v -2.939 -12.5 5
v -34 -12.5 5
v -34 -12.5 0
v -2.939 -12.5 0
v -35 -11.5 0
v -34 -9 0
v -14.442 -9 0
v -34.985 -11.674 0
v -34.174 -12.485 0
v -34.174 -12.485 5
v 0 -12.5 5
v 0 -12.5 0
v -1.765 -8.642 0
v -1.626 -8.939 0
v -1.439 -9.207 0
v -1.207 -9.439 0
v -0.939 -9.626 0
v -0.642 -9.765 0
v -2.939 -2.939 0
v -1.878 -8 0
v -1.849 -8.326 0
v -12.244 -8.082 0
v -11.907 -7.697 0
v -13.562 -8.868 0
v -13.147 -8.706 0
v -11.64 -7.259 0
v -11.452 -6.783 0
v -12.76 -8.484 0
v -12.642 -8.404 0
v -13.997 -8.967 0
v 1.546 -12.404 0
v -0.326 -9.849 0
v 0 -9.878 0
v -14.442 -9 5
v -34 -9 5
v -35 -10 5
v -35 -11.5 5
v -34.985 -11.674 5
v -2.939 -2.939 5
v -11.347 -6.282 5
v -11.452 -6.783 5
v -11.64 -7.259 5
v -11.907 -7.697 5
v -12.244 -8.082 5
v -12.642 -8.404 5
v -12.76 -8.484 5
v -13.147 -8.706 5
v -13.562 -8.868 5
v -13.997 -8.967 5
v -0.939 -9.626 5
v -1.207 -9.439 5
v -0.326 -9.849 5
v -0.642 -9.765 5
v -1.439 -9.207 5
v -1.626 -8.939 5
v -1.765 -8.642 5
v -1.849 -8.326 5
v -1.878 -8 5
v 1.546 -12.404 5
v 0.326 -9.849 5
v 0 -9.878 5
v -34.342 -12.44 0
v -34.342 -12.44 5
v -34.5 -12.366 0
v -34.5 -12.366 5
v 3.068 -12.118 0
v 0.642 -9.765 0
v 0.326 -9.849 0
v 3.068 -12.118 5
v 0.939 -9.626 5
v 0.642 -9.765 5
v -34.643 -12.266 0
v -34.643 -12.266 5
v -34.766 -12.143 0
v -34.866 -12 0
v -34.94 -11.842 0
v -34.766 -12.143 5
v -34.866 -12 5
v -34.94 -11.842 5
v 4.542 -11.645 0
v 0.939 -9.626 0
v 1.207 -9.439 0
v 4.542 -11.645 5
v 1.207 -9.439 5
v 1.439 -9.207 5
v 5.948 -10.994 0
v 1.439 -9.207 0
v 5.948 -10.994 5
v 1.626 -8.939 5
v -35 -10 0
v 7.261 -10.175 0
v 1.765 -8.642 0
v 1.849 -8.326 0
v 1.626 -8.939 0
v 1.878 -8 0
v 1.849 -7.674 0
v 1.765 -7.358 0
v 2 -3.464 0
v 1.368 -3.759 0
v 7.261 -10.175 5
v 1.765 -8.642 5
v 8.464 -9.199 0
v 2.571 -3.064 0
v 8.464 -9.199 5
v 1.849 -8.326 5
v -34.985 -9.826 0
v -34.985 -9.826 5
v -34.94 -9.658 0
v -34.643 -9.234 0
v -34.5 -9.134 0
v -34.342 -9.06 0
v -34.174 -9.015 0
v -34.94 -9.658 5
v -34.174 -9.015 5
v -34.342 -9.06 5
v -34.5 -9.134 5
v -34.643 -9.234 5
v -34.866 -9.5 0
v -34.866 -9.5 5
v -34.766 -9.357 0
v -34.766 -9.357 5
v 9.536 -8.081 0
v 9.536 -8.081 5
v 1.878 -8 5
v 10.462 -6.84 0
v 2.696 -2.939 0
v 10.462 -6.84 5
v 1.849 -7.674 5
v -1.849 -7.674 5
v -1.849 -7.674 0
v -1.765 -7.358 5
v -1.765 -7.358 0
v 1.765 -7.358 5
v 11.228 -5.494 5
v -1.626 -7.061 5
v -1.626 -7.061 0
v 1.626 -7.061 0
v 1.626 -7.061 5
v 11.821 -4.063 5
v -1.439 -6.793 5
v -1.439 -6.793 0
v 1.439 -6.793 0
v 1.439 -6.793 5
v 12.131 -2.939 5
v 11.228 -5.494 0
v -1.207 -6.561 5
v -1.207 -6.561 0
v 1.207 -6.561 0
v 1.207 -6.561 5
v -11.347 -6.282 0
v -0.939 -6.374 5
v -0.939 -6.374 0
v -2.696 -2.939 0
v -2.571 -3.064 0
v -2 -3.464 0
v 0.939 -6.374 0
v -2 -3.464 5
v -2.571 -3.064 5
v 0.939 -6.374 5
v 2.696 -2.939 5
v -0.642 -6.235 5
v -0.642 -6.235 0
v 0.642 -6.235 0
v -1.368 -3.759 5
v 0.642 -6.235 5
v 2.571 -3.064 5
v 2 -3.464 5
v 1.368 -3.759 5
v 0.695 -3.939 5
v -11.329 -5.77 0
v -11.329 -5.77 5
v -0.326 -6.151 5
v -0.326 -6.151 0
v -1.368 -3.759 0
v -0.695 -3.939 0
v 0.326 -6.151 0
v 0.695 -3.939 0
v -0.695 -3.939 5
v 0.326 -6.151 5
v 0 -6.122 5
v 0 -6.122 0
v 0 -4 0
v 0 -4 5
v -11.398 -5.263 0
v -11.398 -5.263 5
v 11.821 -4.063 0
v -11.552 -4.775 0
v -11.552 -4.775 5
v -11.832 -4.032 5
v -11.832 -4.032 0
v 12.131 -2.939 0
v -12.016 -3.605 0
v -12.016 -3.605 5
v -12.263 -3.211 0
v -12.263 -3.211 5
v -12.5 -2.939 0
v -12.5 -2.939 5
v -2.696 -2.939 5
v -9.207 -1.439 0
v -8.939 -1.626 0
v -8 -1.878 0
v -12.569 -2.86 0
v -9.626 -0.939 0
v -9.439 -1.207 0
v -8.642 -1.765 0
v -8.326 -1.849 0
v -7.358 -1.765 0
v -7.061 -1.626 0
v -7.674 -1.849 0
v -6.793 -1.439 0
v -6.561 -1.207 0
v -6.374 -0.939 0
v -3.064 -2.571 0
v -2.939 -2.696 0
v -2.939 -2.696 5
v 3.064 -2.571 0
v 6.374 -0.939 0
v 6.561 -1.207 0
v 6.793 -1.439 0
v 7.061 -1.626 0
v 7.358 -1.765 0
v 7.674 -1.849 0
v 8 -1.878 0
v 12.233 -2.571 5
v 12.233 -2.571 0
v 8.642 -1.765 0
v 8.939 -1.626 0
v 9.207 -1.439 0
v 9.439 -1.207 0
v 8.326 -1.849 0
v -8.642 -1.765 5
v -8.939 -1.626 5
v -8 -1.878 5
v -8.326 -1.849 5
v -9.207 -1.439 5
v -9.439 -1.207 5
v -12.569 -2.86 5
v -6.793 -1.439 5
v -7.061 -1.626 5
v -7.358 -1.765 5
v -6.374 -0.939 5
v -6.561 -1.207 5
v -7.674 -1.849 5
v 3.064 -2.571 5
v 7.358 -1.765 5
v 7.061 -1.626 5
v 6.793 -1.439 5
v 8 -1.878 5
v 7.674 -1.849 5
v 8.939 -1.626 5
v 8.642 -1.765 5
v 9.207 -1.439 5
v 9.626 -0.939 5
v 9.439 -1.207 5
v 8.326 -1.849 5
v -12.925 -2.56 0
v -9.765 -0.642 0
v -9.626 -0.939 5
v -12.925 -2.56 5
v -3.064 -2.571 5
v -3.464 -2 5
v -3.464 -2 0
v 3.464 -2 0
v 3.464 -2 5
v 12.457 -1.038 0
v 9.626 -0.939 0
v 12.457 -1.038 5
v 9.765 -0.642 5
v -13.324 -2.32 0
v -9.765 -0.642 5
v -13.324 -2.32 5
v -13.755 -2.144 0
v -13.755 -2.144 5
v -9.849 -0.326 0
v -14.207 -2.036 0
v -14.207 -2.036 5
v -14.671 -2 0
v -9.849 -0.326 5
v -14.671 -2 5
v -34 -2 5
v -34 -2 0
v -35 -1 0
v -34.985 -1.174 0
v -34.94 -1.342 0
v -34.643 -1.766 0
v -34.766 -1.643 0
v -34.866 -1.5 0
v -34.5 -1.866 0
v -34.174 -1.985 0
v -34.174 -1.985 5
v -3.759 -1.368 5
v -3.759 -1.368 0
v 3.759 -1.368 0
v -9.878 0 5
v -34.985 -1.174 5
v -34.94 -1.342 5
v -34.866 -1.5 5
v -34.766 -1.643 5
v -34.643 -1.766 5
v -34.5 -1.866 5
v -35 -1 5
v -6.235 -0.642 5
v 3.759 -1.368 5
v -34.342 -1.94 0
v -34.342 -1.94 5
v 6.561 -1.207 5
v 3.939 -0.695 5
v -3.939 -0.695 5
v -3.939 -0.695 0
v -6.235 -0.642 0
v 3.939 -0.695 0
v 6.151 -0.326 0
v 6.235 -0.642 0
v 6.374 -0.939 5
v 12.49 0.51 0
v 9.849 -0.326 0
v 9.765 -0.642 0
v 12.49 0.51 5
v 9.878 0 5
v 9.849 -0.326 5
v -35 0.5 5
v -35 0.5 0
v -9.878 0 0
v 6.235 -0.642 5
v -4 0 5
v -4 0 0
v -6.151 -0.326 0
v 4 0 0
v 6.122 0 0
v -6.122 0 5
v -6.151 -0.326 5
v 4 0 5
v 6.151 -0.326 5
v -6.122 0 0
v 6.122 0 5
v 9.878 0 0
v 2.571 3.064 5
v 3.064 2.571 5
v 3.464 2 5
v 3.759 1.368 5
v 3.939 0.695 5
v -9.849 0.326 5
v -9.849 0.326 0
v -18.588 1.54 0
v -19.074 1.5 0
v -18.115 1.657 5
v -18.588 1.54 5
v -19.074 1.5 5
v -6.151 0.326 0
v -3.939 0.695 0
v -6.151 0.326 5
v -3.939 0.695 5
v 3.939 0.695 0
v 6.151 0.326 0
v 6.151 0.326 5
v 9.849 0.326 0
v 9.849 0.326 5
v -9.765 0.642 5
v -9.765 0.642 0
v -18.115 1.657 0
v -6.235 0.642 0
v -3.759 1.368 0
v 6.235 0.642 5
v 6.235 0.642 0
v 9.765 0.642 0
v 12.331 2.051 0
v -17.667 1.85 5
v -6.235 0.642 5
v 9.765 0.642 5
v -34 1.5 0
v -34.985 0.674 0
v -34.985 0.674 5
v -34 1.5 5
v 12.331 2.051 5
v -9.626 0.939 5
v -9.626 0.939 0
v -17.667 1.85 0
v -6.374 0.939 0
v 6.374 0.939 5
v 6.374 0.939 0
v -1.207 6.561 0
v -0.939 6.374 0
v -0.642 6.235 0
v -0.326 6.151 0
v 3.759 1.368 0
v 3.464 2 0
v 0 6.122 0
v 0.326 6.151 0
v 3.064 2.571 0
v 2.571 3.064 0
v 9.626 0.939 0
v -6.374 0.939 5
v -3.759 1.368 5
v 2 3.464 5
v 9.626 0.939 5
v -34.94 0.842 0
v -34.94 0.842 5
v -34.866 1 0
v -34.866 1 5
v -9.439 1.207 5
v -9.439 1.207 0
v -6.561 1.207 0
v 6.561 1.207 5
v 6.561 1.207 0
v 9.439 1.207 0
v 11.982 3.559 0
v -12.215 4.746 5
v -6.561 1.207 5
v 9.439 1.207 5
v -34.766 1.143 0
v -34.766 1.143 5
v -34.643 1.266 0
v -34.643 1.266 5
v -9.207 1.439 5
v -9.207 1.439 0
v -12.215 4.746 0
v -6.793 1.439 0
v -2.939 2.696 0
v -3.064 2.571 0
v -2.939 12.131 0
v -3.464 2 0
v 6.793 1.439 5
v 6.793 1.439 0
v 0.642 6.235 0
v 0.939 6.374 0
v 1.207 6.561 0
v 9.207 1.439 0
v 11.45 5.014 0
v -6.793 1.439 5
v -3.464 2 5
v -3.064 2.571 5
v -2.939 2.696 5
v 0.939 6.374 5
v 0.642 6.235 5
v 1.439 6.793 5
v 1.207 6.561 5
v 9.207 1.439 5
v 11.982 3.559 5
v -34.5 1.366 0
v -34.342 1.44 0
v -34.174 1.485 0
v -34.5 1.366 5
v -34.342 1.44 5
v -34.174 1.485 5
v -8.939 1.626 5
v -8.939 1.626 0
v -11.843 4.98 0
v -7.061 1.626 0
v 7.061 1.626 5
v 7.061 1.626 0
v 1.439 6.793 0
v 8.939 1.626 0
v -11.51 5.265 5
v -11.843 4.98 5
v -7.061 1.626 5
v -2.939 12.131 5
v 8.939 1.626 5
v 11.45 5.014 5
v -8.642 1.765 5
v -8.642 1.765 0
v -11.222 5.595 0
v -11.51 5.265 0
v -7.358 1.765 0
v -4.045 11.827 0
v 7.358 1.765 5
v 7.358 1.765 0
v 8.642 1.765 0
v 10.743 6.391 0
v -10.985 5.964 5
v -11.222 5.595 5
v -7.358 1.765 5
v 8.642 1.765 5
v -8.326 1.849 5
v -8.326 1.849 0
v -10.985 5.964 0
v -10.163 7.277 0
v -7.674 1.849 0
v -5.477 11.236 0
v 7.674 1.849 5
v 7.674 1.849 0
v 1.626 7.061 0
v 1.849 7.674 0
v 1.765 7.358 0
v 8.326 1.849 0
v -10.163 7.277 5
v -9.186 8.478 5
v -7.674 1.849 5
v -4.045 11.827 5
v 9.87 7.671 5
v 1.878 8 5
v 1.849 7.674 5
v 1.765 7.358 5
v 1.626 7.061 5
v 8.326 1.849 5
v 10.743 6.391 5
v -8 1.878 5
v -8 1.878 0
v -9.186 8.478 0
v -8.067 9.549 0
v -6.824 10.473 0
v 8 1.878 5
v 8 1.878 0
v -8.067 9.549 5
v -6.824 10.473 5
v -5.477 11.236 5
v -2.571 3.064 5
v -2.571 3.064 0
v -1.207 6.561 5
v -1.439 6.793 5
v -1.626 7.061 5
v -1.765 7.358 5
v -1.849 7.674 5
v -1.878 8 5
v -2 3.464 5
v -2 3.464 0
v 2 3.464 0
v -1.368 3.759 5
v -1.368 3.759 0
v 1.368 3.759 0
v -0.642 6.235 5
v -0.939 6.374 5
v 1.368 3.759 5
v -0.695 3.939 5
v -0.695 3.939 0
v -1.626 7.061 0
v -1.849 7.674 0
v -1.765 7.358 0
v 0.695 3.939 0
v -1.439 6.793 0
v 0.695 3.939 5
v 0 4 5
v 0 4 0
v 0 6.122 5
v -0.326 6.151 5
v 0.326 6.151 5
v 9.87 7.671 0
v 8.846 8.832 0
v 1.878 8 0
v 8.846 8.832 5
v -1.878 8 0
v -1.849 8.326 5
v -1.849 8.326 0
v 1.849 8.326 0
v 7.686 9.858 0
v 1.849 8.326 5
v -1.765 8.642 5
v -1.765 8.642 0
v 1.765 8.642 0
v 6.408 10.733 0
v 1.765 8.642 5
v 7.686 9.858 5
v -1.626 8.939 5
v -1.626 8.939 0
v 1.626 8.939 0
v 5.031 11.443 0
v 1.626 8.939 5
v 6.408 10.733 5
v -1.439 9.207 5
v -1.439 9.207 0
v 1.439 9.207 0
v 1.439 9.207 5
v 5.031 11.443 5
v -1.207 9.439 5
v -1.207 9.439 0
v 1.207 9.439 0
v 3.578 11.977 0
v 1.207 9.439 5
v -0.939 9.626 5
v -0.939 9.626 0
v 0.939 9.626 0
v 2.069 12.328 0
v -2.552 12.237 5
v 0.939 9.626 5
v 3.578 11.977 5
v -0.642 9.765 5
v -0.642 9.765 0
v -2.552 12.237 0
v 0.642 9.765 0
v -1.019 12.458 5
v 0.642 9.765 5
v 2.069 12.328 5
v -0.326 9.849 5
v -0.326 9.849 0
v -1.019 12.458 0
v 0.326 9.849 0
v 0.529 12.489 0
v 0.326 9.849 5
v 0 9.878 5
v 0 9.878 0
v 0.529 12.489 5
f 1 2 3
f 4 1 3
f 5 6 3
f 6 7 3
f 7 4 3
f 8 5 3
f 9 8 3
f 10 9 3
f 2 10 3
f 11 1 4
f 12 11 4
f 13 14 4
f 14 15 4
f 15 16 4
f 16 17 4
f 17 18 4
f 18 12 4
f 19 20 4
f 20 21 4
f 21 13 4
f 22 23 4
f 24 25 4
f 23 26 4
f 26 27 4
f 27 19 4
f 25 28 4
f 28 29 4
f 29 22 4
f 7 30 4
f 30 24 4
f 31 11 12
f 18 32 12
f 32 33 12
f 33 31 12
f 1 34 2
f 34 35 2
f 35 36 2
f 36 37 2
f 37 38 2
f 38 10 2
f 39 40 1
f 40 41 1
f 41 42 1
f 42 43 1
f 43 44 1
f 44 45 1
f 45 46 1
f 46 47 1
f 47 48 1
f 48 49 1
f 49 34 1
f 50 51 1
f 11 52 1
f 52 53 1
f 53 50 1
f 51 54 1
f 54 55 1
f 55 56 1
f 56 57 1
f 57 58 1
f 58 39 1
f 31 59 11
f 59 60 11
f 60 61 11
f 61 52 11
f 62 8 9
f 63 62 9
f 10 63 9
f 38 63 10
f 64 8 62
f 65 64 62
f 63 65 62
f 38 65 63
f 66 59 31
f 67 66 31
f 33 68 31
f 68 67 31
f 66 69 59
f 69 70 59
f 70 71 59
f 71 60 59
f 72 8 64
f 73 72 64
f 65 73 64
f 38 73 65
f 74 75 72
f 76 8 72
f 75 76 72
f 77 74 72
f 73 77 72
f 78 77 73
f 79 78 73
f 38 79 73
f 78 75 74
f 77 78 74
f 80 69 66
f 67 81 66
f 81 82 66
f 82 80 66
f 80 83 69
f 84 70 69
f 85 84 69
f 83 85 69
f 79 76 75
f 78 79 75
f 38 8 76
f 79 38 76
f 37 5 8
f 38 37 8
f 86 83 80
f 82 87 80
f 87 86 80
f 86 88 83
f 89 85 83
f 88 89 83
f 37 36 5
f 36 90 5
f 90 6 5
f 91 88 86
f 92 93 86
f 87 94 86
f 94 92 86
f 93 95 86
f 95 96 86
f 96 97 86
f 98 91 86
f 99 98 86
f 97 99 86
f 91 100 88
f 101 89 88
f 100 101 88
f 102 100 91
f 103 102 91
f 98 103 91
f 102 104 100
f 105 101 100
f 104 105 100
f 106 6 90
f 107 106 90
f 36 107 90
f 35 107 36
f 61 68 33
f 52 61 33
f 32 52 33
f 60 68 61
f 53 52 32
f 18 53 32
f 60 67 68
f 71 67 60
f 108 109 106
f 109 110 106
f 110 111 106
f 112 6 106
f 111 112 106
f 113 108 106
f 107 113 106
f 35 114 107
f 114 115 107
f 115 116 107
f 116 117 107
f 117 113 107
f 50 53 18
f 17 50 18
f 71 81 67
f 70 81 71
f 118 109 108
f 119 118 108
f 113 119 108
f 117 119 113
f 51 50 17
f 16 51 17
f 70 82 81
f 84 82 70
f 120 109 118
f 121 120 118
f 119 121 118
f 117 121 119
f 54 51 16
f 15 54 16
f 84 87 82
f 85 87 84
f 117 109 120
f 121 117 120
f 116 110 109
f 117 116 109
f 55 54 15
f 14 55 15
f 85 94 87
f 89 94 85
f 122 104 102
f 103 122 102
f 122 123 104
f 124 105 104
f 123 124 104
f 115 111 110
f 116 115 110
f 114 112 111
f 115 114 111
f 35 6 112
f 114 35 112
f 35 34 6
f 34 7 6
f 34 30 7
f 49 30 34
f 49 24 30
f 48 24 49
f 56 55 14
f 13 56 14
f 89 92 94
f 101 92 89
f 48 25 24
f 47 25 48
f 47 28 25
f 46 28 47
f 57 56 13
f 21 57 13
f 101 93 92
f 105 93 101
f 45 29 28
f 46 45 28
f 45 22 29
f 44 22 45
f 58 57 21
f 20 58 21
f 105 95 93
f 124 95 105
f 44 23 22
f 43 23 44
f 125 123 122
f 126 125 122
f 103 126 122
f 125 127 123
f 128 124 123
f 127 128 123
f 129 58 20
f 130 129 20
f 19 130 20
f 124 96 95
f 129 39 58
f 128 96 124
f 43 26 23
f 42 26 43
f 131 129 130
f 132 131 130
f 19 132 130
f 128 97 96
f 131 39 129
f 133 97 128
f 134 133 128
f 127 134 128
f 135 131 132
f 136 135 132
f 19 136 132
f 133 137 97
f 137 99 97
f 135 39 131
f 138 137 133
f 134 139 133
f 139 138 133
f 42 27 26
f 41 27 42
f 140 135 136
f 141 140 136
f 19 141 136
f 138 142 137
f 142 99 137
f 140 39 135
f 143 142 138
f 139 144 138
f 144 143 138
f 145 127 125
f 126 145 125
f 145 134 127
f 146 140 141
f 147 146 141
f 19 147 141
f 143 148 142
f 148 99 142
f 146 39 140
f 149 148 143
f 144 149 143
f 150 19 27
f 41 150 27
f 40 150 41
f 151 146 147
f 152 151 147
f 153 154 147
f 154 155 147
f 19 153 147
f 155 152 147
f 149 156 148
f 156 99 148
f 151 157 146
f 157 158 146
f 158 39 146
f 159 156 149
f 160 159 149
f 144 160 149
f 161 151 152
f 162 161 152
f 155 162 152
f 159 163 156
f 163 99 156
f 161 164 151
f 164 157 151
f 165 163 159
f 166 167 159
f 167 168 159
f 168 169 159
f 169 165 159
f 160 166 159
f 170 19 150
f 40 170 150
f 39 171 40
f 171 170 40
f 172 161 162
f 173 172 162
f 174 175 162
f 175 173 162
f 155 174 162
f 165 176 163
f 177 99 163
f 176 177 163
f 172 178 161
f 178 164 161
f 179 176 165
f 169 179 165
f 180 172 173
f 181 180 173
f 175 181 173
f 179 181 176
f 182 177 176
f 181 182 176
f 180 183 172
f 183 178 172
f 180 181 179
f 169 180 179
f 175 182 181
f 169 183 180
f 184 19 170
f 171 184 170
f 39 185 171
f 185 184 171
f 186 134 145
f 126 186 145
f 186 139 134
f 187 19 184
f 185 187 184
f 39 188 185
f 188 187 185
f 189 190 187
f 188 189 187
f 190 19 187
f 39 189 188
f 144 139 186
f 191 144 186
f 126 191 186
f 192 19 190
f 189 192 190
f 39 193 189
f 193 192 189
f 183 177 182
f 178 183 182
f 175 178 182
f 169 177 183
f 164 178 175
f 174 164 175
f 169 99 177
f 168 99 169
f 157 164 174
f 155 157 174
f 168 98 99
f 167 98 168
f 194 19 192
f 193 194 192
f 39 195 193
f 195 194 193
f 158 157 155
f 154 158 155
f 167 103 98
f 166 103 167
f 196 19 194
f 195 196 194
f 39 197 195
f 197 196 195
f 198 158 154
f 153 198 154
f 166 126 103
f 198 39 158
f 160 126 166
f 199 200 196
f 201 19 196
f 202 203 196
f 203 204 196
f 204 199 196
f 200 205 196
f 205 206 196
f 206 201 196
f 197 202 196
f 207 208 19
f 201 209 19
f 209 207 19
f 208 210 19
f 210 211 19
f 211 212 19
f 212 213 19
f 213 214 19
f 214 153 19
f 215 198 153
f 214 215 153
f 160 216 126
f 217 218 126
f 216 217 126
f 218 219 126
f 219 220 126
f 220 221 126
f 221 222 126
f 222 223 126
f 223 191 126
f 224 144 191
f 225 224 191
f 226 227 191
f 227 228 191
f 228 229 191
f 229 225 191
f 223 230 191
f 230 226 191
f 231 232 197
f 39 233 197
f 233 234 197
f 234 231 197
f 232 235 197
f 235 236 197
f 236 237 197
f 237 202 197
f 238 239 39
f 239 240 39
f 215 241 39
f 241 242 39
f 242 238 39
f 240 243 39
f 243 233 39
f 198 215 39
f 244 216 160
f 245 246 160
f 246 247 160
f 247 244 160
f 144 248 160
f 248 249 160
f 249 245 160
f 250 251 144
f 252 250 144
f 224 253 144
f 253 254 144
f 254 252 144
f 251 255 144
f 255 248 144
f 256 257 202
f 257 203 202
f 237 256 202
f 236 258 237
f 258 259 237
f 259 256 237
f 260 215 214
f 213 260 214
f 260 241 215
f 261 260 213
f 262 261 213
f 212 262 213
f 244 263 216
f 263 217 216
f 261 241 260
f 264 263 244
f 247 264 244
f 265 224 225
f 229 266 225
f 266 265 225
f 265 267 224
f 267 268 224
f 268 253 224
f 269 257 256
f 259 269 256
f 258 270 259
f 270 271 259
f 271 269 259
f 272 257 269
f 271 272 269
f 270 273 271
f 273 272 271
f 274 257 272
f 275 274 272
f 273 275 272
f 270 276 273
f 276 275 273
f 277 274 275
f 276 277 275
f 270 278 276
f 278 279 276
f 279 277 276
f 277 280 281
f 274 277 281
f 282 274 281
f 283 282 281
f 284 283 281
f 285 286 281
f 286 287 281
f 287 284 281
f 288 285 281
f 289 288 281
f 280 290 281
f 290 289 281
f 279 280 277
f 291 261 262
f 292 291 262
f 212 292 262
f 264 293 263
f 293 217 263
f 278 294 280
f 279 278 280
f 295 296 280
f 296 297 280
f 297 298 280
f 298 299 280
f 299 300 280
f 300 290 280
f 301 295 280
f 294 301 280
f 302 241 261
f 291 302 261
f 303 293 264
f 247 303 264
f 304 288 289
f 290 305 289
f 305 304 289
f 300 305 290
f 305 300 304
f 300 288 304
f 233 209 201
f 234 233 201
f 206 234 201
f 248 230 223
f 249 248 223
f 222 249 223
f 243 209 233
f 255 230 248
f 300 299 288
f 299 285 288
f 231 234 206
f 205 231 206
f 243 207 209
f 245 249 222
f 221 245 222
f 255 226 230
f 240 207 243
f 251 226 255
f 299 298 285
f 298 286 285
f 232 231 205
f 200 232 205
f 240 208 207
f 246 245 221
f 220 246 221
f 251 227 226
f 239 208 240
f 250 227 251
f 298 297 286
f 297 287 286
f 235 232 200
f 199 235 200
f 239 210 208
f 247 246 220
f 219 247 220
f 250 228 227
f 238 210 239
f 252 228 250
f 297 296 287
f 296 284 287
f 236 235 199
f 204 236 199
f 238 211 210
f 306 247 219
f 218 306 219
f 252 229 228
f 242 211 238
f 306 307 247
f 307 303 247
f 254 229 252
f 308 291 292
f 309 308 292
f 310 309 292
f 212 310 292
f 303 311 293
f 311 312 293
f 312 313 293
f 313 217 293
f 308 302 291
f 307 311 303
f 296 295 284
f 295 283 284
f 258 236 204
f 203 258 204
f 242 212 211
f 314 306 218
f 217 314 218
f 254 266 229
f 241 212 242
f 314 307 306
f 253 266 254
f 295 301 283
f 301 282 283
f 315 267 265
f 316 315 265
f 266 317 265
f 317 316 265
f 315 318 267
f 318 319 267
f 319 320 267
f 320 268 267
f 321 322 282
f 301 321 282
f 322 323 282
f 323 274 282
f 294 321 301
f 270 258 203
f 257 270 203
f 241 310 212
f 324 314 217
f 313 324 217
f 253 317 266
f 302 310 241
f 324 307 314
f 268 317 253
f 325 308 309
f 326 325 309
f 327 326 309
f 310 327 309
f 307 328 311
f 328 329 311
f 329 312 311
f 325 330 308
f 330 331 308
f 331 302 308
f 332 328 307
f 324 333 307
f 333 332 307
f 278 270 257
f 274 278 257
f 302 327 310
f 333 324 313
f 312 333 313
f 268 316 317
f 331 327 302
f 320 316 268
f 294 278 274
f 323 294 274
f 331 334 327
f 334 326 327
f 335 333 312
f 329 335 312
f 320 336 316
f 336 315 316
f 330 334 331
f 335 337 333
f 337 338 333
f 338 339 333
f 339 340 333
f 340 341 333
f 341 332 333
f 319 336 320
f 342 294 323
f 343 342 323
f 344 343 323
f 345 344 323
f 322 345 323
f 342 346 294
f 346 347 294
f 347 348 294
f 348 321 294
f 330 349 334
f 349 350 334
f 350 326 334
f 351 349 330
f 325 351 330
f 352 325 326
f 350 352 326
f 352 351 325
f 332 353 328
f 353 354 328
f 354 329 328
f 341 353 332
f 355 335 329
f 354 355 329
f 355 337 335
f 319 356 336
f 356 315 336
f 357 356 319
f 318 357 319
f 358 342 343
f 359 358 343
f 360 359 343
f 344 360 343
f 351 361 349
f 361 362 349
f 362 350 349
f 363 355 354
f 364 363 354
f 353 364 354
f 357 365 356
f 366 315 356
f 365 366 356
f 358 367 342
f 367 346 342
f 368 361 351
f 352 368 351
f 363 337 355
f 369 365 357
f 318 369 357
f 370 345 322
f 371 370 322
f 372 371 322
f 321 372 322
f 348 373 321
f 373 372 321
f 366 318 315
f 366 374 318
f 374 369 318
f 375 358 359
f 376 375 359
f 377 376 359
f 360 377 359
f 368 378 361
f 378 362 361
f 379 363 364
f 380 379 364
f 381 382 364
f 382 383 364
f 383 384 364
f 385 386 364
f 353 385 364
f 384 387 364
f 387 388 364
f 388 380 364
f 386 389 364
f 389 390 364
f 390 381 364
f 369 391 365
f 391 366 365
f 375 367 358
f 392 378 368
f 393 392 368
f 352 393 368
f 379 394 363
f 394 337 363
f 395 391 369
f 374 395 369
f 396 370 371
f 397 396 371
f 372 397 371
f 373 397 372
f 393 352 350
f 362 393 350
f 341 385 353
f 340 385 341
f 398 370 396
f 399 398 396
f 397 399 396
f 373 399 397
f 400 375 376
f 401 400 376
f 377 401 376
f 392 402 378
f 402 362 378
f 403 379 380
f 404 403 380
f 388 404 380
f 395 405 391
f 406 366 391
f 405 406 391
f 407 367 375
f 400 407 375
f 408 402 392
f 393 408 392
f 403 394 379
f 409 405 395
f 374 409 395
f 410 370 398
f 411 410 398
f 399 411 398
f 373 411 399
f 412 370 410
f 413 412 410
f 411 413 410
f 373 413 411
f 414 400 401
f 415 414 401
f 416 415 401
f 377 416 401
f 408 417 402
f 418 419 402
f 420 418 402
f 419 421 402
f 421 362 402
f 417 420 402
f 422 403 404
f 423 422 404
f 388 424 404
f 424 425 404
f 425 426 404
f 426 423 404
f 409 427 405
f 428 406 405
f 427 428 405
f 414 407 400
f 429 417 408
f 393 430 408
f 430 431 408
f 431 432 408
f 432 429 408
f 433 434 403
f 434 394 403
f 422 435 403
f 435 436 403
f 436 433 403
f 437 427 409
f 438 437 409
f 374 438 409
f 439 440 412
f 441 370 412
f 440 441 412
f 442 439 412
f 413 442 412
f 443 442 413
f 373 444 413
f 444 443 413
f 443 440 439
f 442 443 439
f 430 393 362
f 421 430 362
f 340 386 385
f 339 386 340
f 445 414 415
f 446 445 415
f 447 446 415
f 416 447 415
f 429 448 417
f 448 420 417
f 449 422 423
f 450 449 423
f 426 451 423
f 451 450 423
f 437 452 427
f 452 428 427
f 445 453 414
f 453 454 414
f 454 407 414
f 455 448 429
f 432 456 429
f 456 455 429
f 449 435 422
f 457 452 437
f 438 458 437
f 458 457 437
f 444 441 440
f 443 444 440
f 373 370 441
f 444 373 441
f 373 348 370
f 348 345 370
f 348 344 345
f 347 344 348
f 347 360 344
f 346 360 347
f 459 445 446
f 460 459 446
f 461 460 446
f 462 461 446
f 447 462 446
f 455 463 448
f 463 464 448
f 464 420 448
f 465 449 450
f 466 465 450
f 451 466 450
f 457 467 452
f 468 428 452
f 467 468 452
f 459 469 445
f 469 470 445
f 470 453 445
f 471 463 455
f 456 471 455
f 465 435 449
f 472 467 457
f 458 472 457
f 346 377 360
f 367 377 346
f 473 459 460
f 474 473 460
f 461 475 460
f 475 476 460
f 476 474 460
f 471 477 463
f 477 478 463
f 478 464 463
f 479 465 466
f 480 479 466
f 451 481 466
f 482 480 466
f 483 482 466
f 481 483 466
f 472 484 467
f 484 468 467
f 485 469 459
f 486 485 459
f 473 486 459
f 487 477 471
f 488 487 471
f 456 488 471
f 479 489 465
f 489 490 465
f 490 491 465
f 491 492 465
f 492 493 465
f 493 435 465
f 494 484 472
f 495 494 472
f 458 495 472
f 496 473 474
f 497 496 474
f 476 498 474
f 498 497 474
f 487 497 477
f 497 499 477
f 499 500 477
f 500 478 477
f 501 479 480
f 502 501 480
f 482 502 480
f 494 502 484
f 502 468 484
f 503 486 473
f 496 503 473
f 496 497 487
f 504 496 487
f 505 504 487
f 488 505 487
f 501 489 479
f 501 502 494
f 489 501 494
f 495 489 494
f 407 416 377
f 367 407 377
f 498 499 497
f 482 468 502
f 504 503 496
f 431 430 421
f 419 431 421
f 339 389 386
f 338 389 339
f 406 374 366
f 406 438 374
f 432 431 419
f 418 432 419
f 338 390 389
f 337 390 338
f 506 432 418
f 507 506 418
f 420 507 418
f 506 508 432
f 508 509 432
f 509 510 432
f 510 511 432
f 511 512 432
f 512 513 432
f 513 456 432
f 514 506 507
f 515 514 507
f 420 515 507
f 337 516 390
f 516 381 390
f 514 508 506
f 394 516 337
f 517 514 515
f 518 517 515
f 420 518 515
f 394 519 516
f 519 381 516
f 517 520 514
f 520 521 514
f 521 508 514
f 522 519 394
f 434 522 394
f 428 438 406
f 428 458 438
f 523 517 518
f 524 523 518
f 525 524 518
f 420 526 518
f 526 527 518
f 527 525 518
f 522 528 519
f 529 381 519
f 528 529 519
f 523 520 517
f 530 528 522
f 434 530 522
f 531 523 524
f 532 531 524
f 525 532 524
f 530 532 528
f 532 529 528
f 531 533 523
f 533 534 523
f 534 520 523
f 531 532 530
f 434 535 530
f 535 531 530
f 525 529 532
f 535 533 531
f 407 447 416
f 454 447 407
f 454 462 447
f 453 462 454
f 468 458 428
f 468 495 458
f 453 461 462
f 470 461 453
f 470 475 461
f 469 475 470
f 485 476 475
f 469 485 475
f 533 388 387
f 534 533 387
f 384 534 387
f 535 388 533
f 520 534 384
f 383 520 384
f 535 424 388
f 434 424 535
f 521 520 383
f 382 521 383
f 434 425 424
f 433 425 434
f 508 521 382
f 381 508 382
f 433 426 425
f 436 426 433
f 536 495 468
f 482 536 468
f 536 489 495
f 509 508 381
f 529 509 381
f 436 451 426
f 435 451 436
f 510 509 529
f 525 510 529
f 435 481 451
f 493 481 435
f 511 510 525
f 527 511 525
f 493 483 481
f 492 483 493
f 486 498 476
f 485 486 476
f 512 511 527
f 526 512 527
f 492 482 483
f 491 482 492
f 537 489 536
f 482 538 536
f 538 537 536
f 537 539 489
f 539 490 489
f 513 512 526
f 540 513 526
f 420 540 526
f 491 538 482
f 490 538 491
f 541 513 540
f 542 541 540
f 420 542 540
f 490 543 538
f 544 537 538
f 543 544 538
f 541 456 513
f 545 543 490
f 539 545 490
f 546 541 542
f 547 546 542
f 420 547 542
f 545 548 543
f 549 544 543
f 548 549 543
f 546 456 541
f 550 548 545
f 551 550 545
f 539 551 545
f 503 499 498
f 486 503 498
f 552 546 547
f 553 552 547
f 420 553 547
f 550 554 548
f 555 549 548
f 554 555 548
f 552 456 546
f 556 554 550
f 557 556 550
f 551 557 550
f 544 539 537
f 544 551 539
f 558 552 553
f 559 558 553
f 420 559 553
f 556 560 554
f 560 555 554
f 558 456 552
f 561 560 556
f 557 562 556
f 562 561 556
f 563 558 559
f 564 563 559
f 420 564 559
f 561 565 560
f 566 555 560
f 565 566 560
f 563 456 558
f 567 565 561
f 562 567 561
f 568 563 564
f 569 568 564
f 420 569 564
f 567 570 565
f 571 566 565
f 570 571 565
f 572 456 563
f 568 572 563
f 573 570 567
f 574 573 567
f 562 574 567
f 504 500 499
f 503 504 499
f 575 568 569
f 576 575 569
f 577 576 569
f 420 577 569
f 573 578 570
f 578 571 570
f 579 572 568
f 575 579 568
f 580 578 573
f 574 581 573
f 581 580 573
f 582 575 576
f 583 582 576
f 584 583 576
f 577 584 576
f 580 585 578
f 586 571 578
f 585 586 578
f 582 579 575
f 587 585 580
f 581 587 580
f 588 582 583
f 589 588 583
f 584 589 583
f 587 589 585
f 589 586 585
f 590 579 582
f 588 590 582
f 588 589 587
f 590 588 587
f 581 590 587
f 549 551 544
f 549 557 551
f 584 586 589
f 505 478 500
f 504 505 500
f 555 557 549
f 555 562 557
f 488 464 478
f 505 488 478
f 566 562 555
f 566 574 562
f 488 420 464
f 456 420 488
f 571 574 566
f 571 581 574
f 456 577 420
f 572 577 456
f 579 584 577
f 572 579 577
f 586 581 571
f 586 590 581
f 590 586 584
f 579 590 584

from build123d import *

# Parameters (mm, degrees)
SKETCH1_R           = 1.878
SKETCH1_R_2         = 4
BOSS_EXTRUDE1_DEPTH = 5
FILLET1_R           = 3
FILLET2_R           = 3
FILLET3_R           = 1
FILLET4_R           = 1


with BuildPart() as part:
    # Sketch1 → Boss-Extrude1 (new body)
    with BuildSketch(Plane.XY):
        with BuildLine():
            Line((0, -12.5), (-35, -12.5))
            Line((-35, -12.5), (-35, -9))
            Line((-35, -9), (-13.521844546, -9))
            Line((-13.521844546, -9), (-10.422570658, -6.900726112))
            ThreePointArc((-10.422570658, -6.900726112), (-11.641569013, -4.552347848), (-12.338962679, -2))
            Line((-12.338962679, -2), (-35, -2))
            Line((-35, -2), (-35, 1.5))
            Line((-35, 1.5), (-12.409673646, 1.5))
            ThreePointArc((-12.409673646, 1.5), (9.354143467, 8.291561976), (0, -12.5))
        make_face()
        with Locations((0, 8)):
            Circle(SKETCH1_R, mode=Mode.SUBTRACT)
        with Locations((8, 0)):
            Circle(SKETCH1_R, mode=Mode.SUBTRACT)
        with Locations((0, -8)):
            Circle(SKETCH1_R, mode=Mode.SUBTRACT)
        with Locations((-8, 0)):
            Circle(SKETCH1_R, mode=Mode.SUBTRACT)
        Circle(SKETCH1_R_2, mode=Mode.SUBTRACT)
    extrude(amount=BOSS_EXTRUDE1_DEPTH)

    # Chamfer1
    # the kernel refuses this chamfer: 6.874632774, 6 mm, written as the material it adds along each edge
    with BuildSketch(Plane(origin=(-12.409673646, 1.5, 0), x_dir=(-0.9997808942395764, -0.02093235566086501, 0), z_dir=(0, 0, 1))) as chamfer1_piece_1:
        with BuildLine():
            Line((6.161688618, 0), (-1.363052276, -3.796482939))
            Line((-1.363052276, -3.796482939), (-1.486883786, -3.736733567))
            ThreePointArc((-1.486883786, -3.736733567), (-0.576736398, -1.931017764), (-0.136123845, 0.019352752))
            Line((-0.136123845, 0.019352752), (0.002878045, 0.13746253))
            ThreePointArc((0.002878045, 0.13746253), (3.082372441, 0.072987331), (6.164566664, 0.13746253))
            Line((6.164566664, 0.13746253), (6.161688618, 0))
        make_face()
    extrude(amount=5)

    # Fillet1
    fillet1_edges = [part.edges().sort_by_distance(p)[0] for p in [
        (-13.521844546, -9, 2.5),
        (-10.422570658, -6.900726112, 2.5),
        (-12.338962679, -2, 2.5),
    ]]
    fillet(fillet1_edges, radius=FILLET1_R)

    # Fillet2
    fillet2_edges = [part.edges().sort_by_distance(p)[0] for p in [
        (-18.327151282, 1.5, 2.5),
        (-11.369250275, 5.195204345, 2.5),
    ]]
    fillet(fillet2_edges, radius=FILLET2_R)

    # Fillet3
    fillet3_edges = [part.edges().sort_by_distance(p)[0] for p in [
        (-35, -2, 2.5),
        (-35, -9, 2.5),
    ]]
    fillet(fillet3_edges, radius=FILLET3_R)

    # Fillet4
    fillet4_edges = [part.edges().sort_by_distance(p)[0] for p in [
        (-35, 1.5, 2.5),
        (-35, -12.5, 2.5),
    ]]
    fillet(fillet4_edges, radius=FILLET4_R)


solid = part.part
